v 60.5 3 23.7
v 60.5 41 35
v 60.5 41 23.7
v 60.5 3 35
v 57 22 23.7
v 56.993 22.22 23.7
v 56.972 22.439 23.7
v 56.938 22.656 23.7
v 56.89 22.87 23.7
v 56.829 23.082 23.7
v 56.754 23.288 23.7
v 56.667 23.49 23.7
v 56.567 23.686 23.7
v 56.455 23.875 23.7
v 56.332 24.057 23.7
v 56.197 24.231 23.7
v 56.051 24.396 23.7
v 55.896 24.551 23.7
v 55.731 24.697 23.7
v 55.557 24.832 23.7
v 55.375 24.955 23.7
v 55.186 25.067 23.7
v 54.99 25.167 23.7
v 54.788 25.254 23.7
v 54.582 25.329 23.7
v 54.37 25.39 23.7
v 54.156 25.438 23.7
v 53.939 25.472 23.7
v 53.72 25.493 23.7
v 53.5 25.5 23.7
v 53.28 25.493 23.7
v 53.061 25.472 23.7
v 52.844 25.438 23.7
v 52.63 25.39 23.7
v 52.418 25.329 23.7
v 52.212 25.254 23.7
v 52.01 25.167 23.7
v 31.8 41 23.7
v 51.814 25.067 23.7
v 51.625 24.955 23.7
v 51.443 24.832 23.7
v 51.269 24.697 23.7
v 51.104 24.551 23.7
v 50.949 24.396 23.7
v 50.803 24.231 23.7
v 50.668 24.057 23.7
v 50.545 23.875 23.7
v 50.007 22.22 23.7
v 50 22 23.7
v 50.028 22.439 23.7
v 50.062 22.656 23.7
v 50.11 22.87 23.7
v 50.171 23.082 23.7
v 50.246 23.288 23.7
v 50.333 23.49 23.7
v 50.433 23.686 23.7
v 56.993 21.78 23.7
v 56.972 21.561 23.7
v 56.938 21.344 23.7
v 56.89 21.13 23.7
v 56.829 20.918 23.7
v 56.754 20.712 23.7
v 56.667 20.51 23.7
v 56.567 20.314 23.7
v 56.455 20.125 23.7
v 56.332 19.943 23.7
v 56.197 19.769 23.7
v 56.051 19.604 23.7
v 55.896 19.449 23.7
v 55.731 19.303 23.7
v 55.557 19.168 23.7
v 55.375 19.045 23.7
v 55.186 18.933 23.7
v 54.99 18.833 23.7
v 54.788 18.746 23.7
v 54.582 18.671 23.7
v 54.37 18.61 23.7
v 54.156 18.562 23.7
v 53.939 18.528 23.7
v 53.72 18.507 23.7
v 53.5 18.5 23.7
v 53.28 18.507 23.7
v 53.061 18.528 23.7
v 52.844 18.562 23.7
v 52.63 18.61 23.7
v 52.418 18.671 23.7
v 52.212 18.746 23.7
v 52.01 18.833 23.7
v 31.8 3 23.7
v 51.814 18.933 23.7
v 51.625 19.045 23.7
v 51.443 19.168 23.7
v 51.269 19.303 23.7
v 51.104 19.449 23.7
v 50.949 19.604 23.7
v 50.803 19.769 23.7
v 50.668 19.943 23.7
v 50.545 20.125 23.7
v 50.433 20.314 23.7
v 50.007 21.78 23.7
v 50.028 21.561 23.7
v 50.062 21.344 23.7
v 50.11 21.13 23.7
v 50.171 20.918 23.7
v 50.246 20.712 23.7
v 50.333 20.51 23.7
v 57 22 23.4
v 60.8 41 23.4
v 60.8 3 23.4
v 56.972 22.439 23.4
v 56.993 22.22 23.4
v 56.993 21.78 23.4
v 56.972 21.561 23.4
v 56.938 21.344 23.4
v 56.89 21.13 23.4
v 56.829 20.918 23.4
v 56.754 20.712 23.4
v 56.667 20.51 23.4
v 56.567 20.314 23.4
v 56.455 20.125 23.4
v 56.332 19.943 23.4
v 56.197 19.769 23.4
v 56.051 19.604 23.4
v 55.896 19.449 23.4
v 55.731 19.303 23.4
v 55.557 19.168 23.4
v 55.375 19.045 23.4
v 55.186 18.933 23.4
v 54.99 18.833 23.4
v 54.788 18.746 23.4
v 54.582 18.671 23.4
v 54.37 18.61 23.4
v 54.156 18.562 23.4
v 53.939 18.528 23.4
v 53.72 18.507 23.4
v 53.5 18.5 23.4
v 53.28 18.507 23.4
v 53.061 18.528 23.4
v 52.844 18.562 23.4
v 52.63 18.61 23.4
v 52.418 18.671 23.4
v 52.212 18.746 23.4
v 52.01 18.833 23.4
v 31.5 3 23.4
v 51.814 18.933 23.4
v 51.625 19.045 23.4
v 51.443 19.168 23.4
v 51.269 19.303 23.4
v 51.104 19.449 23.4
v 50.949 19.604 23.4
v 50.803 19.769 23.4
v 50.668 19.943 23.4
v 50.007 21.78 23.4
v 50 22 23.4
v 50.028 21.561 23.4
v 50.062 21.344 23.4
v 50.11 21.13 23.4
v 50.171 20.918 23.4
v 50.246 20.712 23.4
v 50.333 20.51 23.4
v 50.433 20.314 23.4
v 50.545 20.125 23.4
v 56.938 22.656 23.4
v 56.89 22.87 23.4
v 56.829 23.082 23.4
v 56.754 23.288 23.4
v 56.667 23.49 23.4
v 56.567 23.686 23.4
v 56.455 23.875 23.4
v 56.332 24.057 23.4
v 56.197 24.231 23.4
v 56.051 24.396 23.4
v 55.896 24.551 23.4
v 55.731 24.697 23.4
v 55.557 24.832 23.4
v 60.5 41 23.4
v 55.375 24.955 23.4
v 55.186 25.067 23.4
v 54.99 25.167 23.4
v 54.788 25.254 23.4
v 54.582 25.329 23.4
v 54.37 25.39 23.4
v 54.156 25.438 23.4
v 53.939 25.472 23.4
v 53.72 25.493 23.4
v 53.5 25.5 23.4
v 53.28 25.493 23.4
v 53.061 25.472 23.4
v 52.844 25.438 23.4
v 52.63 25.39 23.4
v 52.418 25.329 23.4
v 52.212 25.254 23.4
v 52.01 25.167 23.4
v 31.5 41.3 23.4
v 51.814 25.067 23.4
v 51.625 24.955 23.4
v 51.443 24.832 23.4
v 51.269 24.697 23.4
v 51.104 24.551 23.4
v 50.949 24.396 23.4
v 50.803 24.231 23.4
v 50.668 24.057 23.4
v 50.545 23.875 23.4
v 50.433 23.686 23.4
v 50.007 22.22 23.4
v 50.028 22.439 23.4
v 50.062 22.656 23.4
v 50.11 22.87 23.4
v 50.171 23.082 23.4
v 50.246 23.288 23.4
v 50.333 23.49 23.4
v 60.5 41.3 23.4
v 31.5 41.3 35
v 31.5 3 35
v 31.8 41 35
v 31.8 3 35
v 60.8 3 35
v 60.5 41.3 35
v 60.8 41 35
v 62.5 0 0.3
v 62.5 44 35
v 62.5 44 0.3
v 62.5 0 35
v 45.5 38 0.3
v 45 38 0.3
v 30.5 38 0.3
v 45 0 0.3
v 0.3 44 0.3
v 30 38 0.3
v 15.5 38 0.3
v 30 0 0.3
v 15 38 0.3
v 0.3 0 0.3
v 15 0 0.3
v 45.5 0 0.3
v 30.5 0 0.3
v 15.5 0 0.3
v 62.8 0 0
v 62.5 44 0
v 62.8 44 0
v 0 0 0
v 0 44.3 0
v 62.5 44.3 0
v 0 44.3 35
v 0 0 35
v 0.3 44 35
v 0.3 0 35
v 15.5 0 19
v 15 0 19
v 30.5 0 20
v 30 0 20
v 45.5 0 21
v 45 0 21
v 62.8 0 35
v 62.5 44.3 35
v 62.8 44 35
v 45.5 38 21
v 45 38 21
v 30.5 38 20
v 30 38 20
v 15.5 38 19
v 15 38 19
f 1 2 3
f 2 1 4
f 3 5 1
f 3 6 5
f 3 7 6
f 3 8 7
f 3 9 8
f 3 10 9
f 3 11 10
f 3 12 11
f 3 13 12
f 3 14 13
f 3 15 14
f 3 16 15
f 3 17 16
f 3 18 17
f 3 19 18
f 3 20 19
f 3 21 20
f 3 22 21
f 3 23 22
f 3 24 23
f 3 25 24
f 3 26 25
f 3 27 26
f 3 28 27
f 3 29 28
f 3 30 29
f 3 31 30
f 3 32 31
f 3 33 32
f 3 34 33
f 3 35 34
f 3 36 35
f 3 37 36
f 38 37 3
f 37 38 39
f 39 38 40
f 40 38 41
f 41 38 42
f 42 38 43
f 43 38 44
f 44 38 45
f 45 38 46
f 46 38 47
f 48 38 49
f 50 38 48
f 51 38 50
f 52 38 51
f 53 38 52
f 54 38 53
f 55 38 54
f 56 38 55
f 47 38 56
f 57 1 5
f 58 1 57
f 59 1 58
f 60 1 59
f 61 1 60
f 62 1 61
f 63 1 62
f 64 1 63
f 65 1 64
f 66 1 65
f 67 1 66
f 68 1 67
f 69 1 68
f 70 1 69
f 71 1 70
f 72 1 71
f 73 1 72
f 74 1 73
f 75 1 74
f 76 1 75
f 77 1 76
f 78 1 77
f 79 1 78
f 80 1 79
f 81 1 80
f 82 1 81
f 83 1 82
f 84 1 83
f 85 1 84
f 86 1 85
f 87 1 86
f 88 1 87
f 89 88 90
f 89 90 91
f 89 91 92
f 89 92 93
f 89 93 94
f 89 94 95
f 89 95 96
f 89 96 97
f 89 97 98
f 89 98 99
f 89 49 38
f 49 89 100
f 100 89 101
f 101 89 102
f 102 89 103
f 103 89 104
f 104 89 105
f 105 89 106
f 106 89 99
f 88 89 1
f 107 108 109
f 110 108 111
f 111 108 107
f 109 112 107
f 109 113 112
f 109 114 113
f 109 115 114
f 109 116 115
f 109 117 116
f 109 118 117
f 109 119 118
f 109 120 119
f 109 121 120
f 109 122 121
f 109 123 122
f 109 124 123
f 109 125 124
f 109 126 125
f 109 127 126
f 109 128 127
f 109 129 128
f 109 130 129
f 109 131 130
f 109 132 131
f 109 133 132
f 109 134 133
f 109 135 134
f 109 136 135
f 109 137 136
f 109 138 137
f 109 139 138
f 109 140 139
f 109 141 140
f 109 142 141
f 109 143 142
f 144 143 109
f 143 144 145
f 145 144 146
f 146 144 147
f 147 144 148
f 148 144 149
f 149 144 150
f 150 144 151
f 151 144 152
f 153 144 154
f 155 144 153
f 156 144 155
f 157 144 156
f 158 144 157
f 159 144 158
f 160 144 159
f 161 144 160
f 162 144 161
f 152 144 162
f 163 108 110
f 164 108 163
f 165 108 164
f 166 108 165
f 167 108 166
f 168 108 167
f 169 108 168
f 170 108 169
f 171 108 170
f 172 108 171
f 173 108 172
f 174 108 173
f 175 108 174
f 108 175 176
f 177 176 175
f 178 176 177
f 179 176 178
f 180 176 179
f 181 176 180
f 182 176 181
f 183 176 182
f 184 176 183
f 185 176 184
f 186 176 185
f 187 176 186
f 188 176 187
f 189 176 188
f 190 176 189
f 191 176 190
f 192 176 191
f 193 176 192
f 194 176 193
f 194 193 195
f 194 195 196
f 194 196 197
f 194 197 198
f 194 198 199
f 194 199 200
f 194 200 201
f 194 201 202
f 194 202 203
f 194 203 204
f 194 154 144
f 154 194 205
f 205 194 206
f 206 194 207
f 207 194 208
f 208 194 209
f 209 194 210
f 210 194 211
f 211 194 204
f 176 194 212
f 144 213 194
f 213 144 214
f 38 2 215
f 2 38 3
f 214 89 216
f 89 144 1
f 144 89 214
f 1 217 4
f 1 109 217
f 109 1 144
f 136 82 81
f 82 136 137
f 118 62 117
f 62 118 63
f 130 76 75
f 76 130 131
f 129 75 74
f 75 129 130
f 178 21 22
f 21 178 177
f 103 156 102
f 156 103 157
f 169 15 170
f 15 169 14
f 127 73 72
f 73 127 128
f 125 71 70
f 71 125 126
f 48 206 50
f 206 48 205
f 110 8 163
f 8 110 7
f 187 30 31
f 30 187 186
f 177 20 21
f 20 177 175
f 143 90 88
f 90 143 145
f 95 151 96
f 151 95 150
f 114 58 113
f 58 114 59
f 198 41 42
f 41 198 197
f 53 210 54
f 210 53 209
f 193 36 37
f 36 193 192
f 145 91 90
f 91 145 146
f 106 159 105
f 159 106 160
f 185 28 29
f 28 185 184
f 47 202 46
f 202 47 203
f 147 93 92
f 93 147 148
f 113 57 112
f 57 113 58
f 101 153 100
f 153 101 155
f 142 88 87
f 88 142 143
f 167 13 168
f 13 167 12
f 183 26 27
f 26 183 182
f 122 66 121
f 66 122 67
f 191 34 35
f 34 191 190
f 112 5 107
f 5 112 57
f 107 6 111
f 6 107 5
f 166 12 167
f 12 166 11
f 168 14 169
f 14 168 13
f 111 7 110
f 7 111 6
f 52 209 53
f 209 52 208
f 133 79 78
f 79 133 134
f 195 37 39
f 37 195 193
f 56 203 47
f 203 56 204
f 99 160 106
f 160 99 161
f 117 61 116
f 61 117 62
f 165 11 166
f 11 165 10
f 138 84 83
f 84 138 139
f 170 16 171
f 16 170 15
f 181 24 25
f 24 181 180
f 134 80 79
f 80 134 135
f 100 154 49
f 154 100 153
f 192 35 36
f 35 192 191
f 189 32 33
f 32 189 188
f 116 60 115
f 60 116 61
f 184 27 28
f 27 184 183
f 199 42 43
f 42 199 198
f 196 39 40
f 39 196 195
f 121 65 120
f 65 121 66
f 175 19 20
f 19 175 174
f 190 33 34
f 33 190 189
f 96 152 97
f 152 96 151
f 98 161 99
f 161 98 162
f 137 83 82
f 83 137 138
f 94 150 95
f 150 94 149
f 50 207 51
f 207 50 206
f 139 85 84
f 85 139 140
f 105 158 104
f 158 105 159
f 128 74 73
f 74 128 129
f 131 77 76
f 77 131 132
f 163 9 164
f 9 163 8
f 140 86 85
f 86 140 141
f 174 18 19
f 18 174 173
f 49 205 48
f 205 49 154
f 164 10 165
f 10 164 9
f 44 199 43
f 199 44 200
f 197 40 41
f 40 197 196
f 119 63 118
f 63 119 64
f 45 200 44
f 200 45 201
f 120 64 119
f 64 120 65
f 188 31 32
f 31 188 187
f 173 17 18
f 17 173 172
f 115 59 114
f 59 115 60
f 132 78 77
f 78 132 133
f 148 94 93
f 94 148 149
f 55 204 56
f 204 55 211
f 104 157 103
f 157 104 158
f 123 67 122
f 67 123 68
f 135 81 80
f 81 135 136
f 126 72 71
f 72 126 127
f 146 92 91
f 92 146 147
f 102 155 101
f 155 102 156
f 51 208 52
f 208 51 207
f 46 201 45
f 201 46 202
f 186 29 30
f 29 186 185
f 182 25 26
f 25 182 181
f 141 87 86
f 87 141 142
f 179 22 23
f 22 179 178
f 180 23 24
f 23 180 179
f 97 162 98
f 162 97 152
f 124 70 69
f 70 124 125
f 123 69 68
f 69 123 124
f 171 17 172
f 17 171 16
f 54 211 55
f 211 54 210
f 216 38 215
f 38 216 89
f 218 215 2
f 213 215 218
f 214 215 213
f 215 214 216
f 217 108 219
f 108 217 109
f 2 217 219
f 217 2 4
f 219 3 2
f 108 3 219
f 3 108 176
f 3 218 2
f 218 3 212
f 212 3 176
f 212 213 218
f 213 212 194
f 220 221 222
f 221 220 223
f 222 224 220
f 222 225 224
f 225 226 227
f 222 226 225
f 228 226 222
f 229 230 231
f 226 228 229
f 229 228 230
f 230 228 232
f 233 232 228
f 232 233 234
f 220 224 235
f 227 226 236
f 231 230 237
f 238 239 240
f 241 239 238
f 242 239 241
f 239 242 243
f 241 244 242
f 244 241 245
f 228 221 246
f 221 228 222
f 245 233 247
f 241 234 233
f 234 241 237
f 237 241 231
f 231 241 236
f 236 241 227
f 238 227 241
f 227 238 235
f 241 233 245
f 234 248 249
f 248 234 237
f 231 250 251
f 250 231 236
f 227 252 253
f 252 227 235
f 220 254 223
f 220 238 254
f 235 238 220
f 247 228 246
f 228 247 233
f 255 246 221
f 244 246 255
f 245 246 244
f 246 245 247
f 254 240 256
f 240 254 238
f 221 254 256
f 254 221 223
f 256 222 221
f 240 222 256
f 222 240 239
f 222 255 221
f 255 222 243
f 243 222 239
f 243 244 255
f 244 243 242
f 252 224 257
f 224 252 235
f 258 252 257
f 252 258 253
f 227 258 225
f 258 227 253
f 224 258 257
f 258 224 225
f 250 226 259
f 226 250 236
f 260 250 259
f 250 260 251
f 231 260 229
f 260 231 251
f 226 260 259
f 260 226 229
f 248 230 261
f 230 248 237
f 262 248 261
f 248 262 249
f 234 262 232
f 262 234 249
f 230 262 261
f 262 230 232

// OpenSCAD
box_paroi=0.3;
box_largeur=44;
box_longueur=62.5;
box_hauteur=35;


    cube([box_longueur, box_largeur, box_paroi]);
    cube([box_paroi, box_largeur, box_hauteur]);
    translate([box_longueur, 0, 0])
        cube([box_paroi, box_largeur, box_hauteur]);

    translate([0, box_largeur, 0])
        cube([box_longueur, box_paroi, box_hauteur]);



evier_paroi=0.3;
evier_largeur=38;
evier_longueur=29;
evier_hauteur=11.6;

marge=(box_largeur-evier_largeur)/2;

translate([box_longueur-evier_longueur-2, marge, 
           box_hauteur - evier_hauteur]) {
        difference() {
            cube([evier_longueur, evier_largeur, evier_paroi]);
            translate([22, evier_largeur/2, 0])
                cylinder(h=5, r=3.5, center=true, $fn=100);
        }
        cube([evier_paroi, evier_largeur, evier_hauteur]);
        translate([evier_longueur, 0, 0])
            cube([evier_paroi, evier_largeur, evier_hauteur]);

        translate([0, evier_largeur, 0])
            cube([evier_longueur, evier_paroi, evier_hauteur]);
}


ecluse_largeur=38;
ecluse_longueur=0.5;
ecluse1_hauteur=21;
ecluse2_hauteur=20;
ecluse3_hauteur=19;

ecluse1_x=45;
ecluse2_x=30;
ecluse3_x=15;

translate([ecluse1_x, 0, 0])
    cube([ecluse_longueur, ecluse_largeur, ecluse1_hauteur]);

translate([ecluse2_x, 0, 0])
    cube([ecluse_longueur, ecluse_largeur, ecluse2_hauteur]);

translate([ecluse3_x, 0, 0])
    cube([ecluse_longueur, ecluse_largeur, ecluse3_hauteur]);
